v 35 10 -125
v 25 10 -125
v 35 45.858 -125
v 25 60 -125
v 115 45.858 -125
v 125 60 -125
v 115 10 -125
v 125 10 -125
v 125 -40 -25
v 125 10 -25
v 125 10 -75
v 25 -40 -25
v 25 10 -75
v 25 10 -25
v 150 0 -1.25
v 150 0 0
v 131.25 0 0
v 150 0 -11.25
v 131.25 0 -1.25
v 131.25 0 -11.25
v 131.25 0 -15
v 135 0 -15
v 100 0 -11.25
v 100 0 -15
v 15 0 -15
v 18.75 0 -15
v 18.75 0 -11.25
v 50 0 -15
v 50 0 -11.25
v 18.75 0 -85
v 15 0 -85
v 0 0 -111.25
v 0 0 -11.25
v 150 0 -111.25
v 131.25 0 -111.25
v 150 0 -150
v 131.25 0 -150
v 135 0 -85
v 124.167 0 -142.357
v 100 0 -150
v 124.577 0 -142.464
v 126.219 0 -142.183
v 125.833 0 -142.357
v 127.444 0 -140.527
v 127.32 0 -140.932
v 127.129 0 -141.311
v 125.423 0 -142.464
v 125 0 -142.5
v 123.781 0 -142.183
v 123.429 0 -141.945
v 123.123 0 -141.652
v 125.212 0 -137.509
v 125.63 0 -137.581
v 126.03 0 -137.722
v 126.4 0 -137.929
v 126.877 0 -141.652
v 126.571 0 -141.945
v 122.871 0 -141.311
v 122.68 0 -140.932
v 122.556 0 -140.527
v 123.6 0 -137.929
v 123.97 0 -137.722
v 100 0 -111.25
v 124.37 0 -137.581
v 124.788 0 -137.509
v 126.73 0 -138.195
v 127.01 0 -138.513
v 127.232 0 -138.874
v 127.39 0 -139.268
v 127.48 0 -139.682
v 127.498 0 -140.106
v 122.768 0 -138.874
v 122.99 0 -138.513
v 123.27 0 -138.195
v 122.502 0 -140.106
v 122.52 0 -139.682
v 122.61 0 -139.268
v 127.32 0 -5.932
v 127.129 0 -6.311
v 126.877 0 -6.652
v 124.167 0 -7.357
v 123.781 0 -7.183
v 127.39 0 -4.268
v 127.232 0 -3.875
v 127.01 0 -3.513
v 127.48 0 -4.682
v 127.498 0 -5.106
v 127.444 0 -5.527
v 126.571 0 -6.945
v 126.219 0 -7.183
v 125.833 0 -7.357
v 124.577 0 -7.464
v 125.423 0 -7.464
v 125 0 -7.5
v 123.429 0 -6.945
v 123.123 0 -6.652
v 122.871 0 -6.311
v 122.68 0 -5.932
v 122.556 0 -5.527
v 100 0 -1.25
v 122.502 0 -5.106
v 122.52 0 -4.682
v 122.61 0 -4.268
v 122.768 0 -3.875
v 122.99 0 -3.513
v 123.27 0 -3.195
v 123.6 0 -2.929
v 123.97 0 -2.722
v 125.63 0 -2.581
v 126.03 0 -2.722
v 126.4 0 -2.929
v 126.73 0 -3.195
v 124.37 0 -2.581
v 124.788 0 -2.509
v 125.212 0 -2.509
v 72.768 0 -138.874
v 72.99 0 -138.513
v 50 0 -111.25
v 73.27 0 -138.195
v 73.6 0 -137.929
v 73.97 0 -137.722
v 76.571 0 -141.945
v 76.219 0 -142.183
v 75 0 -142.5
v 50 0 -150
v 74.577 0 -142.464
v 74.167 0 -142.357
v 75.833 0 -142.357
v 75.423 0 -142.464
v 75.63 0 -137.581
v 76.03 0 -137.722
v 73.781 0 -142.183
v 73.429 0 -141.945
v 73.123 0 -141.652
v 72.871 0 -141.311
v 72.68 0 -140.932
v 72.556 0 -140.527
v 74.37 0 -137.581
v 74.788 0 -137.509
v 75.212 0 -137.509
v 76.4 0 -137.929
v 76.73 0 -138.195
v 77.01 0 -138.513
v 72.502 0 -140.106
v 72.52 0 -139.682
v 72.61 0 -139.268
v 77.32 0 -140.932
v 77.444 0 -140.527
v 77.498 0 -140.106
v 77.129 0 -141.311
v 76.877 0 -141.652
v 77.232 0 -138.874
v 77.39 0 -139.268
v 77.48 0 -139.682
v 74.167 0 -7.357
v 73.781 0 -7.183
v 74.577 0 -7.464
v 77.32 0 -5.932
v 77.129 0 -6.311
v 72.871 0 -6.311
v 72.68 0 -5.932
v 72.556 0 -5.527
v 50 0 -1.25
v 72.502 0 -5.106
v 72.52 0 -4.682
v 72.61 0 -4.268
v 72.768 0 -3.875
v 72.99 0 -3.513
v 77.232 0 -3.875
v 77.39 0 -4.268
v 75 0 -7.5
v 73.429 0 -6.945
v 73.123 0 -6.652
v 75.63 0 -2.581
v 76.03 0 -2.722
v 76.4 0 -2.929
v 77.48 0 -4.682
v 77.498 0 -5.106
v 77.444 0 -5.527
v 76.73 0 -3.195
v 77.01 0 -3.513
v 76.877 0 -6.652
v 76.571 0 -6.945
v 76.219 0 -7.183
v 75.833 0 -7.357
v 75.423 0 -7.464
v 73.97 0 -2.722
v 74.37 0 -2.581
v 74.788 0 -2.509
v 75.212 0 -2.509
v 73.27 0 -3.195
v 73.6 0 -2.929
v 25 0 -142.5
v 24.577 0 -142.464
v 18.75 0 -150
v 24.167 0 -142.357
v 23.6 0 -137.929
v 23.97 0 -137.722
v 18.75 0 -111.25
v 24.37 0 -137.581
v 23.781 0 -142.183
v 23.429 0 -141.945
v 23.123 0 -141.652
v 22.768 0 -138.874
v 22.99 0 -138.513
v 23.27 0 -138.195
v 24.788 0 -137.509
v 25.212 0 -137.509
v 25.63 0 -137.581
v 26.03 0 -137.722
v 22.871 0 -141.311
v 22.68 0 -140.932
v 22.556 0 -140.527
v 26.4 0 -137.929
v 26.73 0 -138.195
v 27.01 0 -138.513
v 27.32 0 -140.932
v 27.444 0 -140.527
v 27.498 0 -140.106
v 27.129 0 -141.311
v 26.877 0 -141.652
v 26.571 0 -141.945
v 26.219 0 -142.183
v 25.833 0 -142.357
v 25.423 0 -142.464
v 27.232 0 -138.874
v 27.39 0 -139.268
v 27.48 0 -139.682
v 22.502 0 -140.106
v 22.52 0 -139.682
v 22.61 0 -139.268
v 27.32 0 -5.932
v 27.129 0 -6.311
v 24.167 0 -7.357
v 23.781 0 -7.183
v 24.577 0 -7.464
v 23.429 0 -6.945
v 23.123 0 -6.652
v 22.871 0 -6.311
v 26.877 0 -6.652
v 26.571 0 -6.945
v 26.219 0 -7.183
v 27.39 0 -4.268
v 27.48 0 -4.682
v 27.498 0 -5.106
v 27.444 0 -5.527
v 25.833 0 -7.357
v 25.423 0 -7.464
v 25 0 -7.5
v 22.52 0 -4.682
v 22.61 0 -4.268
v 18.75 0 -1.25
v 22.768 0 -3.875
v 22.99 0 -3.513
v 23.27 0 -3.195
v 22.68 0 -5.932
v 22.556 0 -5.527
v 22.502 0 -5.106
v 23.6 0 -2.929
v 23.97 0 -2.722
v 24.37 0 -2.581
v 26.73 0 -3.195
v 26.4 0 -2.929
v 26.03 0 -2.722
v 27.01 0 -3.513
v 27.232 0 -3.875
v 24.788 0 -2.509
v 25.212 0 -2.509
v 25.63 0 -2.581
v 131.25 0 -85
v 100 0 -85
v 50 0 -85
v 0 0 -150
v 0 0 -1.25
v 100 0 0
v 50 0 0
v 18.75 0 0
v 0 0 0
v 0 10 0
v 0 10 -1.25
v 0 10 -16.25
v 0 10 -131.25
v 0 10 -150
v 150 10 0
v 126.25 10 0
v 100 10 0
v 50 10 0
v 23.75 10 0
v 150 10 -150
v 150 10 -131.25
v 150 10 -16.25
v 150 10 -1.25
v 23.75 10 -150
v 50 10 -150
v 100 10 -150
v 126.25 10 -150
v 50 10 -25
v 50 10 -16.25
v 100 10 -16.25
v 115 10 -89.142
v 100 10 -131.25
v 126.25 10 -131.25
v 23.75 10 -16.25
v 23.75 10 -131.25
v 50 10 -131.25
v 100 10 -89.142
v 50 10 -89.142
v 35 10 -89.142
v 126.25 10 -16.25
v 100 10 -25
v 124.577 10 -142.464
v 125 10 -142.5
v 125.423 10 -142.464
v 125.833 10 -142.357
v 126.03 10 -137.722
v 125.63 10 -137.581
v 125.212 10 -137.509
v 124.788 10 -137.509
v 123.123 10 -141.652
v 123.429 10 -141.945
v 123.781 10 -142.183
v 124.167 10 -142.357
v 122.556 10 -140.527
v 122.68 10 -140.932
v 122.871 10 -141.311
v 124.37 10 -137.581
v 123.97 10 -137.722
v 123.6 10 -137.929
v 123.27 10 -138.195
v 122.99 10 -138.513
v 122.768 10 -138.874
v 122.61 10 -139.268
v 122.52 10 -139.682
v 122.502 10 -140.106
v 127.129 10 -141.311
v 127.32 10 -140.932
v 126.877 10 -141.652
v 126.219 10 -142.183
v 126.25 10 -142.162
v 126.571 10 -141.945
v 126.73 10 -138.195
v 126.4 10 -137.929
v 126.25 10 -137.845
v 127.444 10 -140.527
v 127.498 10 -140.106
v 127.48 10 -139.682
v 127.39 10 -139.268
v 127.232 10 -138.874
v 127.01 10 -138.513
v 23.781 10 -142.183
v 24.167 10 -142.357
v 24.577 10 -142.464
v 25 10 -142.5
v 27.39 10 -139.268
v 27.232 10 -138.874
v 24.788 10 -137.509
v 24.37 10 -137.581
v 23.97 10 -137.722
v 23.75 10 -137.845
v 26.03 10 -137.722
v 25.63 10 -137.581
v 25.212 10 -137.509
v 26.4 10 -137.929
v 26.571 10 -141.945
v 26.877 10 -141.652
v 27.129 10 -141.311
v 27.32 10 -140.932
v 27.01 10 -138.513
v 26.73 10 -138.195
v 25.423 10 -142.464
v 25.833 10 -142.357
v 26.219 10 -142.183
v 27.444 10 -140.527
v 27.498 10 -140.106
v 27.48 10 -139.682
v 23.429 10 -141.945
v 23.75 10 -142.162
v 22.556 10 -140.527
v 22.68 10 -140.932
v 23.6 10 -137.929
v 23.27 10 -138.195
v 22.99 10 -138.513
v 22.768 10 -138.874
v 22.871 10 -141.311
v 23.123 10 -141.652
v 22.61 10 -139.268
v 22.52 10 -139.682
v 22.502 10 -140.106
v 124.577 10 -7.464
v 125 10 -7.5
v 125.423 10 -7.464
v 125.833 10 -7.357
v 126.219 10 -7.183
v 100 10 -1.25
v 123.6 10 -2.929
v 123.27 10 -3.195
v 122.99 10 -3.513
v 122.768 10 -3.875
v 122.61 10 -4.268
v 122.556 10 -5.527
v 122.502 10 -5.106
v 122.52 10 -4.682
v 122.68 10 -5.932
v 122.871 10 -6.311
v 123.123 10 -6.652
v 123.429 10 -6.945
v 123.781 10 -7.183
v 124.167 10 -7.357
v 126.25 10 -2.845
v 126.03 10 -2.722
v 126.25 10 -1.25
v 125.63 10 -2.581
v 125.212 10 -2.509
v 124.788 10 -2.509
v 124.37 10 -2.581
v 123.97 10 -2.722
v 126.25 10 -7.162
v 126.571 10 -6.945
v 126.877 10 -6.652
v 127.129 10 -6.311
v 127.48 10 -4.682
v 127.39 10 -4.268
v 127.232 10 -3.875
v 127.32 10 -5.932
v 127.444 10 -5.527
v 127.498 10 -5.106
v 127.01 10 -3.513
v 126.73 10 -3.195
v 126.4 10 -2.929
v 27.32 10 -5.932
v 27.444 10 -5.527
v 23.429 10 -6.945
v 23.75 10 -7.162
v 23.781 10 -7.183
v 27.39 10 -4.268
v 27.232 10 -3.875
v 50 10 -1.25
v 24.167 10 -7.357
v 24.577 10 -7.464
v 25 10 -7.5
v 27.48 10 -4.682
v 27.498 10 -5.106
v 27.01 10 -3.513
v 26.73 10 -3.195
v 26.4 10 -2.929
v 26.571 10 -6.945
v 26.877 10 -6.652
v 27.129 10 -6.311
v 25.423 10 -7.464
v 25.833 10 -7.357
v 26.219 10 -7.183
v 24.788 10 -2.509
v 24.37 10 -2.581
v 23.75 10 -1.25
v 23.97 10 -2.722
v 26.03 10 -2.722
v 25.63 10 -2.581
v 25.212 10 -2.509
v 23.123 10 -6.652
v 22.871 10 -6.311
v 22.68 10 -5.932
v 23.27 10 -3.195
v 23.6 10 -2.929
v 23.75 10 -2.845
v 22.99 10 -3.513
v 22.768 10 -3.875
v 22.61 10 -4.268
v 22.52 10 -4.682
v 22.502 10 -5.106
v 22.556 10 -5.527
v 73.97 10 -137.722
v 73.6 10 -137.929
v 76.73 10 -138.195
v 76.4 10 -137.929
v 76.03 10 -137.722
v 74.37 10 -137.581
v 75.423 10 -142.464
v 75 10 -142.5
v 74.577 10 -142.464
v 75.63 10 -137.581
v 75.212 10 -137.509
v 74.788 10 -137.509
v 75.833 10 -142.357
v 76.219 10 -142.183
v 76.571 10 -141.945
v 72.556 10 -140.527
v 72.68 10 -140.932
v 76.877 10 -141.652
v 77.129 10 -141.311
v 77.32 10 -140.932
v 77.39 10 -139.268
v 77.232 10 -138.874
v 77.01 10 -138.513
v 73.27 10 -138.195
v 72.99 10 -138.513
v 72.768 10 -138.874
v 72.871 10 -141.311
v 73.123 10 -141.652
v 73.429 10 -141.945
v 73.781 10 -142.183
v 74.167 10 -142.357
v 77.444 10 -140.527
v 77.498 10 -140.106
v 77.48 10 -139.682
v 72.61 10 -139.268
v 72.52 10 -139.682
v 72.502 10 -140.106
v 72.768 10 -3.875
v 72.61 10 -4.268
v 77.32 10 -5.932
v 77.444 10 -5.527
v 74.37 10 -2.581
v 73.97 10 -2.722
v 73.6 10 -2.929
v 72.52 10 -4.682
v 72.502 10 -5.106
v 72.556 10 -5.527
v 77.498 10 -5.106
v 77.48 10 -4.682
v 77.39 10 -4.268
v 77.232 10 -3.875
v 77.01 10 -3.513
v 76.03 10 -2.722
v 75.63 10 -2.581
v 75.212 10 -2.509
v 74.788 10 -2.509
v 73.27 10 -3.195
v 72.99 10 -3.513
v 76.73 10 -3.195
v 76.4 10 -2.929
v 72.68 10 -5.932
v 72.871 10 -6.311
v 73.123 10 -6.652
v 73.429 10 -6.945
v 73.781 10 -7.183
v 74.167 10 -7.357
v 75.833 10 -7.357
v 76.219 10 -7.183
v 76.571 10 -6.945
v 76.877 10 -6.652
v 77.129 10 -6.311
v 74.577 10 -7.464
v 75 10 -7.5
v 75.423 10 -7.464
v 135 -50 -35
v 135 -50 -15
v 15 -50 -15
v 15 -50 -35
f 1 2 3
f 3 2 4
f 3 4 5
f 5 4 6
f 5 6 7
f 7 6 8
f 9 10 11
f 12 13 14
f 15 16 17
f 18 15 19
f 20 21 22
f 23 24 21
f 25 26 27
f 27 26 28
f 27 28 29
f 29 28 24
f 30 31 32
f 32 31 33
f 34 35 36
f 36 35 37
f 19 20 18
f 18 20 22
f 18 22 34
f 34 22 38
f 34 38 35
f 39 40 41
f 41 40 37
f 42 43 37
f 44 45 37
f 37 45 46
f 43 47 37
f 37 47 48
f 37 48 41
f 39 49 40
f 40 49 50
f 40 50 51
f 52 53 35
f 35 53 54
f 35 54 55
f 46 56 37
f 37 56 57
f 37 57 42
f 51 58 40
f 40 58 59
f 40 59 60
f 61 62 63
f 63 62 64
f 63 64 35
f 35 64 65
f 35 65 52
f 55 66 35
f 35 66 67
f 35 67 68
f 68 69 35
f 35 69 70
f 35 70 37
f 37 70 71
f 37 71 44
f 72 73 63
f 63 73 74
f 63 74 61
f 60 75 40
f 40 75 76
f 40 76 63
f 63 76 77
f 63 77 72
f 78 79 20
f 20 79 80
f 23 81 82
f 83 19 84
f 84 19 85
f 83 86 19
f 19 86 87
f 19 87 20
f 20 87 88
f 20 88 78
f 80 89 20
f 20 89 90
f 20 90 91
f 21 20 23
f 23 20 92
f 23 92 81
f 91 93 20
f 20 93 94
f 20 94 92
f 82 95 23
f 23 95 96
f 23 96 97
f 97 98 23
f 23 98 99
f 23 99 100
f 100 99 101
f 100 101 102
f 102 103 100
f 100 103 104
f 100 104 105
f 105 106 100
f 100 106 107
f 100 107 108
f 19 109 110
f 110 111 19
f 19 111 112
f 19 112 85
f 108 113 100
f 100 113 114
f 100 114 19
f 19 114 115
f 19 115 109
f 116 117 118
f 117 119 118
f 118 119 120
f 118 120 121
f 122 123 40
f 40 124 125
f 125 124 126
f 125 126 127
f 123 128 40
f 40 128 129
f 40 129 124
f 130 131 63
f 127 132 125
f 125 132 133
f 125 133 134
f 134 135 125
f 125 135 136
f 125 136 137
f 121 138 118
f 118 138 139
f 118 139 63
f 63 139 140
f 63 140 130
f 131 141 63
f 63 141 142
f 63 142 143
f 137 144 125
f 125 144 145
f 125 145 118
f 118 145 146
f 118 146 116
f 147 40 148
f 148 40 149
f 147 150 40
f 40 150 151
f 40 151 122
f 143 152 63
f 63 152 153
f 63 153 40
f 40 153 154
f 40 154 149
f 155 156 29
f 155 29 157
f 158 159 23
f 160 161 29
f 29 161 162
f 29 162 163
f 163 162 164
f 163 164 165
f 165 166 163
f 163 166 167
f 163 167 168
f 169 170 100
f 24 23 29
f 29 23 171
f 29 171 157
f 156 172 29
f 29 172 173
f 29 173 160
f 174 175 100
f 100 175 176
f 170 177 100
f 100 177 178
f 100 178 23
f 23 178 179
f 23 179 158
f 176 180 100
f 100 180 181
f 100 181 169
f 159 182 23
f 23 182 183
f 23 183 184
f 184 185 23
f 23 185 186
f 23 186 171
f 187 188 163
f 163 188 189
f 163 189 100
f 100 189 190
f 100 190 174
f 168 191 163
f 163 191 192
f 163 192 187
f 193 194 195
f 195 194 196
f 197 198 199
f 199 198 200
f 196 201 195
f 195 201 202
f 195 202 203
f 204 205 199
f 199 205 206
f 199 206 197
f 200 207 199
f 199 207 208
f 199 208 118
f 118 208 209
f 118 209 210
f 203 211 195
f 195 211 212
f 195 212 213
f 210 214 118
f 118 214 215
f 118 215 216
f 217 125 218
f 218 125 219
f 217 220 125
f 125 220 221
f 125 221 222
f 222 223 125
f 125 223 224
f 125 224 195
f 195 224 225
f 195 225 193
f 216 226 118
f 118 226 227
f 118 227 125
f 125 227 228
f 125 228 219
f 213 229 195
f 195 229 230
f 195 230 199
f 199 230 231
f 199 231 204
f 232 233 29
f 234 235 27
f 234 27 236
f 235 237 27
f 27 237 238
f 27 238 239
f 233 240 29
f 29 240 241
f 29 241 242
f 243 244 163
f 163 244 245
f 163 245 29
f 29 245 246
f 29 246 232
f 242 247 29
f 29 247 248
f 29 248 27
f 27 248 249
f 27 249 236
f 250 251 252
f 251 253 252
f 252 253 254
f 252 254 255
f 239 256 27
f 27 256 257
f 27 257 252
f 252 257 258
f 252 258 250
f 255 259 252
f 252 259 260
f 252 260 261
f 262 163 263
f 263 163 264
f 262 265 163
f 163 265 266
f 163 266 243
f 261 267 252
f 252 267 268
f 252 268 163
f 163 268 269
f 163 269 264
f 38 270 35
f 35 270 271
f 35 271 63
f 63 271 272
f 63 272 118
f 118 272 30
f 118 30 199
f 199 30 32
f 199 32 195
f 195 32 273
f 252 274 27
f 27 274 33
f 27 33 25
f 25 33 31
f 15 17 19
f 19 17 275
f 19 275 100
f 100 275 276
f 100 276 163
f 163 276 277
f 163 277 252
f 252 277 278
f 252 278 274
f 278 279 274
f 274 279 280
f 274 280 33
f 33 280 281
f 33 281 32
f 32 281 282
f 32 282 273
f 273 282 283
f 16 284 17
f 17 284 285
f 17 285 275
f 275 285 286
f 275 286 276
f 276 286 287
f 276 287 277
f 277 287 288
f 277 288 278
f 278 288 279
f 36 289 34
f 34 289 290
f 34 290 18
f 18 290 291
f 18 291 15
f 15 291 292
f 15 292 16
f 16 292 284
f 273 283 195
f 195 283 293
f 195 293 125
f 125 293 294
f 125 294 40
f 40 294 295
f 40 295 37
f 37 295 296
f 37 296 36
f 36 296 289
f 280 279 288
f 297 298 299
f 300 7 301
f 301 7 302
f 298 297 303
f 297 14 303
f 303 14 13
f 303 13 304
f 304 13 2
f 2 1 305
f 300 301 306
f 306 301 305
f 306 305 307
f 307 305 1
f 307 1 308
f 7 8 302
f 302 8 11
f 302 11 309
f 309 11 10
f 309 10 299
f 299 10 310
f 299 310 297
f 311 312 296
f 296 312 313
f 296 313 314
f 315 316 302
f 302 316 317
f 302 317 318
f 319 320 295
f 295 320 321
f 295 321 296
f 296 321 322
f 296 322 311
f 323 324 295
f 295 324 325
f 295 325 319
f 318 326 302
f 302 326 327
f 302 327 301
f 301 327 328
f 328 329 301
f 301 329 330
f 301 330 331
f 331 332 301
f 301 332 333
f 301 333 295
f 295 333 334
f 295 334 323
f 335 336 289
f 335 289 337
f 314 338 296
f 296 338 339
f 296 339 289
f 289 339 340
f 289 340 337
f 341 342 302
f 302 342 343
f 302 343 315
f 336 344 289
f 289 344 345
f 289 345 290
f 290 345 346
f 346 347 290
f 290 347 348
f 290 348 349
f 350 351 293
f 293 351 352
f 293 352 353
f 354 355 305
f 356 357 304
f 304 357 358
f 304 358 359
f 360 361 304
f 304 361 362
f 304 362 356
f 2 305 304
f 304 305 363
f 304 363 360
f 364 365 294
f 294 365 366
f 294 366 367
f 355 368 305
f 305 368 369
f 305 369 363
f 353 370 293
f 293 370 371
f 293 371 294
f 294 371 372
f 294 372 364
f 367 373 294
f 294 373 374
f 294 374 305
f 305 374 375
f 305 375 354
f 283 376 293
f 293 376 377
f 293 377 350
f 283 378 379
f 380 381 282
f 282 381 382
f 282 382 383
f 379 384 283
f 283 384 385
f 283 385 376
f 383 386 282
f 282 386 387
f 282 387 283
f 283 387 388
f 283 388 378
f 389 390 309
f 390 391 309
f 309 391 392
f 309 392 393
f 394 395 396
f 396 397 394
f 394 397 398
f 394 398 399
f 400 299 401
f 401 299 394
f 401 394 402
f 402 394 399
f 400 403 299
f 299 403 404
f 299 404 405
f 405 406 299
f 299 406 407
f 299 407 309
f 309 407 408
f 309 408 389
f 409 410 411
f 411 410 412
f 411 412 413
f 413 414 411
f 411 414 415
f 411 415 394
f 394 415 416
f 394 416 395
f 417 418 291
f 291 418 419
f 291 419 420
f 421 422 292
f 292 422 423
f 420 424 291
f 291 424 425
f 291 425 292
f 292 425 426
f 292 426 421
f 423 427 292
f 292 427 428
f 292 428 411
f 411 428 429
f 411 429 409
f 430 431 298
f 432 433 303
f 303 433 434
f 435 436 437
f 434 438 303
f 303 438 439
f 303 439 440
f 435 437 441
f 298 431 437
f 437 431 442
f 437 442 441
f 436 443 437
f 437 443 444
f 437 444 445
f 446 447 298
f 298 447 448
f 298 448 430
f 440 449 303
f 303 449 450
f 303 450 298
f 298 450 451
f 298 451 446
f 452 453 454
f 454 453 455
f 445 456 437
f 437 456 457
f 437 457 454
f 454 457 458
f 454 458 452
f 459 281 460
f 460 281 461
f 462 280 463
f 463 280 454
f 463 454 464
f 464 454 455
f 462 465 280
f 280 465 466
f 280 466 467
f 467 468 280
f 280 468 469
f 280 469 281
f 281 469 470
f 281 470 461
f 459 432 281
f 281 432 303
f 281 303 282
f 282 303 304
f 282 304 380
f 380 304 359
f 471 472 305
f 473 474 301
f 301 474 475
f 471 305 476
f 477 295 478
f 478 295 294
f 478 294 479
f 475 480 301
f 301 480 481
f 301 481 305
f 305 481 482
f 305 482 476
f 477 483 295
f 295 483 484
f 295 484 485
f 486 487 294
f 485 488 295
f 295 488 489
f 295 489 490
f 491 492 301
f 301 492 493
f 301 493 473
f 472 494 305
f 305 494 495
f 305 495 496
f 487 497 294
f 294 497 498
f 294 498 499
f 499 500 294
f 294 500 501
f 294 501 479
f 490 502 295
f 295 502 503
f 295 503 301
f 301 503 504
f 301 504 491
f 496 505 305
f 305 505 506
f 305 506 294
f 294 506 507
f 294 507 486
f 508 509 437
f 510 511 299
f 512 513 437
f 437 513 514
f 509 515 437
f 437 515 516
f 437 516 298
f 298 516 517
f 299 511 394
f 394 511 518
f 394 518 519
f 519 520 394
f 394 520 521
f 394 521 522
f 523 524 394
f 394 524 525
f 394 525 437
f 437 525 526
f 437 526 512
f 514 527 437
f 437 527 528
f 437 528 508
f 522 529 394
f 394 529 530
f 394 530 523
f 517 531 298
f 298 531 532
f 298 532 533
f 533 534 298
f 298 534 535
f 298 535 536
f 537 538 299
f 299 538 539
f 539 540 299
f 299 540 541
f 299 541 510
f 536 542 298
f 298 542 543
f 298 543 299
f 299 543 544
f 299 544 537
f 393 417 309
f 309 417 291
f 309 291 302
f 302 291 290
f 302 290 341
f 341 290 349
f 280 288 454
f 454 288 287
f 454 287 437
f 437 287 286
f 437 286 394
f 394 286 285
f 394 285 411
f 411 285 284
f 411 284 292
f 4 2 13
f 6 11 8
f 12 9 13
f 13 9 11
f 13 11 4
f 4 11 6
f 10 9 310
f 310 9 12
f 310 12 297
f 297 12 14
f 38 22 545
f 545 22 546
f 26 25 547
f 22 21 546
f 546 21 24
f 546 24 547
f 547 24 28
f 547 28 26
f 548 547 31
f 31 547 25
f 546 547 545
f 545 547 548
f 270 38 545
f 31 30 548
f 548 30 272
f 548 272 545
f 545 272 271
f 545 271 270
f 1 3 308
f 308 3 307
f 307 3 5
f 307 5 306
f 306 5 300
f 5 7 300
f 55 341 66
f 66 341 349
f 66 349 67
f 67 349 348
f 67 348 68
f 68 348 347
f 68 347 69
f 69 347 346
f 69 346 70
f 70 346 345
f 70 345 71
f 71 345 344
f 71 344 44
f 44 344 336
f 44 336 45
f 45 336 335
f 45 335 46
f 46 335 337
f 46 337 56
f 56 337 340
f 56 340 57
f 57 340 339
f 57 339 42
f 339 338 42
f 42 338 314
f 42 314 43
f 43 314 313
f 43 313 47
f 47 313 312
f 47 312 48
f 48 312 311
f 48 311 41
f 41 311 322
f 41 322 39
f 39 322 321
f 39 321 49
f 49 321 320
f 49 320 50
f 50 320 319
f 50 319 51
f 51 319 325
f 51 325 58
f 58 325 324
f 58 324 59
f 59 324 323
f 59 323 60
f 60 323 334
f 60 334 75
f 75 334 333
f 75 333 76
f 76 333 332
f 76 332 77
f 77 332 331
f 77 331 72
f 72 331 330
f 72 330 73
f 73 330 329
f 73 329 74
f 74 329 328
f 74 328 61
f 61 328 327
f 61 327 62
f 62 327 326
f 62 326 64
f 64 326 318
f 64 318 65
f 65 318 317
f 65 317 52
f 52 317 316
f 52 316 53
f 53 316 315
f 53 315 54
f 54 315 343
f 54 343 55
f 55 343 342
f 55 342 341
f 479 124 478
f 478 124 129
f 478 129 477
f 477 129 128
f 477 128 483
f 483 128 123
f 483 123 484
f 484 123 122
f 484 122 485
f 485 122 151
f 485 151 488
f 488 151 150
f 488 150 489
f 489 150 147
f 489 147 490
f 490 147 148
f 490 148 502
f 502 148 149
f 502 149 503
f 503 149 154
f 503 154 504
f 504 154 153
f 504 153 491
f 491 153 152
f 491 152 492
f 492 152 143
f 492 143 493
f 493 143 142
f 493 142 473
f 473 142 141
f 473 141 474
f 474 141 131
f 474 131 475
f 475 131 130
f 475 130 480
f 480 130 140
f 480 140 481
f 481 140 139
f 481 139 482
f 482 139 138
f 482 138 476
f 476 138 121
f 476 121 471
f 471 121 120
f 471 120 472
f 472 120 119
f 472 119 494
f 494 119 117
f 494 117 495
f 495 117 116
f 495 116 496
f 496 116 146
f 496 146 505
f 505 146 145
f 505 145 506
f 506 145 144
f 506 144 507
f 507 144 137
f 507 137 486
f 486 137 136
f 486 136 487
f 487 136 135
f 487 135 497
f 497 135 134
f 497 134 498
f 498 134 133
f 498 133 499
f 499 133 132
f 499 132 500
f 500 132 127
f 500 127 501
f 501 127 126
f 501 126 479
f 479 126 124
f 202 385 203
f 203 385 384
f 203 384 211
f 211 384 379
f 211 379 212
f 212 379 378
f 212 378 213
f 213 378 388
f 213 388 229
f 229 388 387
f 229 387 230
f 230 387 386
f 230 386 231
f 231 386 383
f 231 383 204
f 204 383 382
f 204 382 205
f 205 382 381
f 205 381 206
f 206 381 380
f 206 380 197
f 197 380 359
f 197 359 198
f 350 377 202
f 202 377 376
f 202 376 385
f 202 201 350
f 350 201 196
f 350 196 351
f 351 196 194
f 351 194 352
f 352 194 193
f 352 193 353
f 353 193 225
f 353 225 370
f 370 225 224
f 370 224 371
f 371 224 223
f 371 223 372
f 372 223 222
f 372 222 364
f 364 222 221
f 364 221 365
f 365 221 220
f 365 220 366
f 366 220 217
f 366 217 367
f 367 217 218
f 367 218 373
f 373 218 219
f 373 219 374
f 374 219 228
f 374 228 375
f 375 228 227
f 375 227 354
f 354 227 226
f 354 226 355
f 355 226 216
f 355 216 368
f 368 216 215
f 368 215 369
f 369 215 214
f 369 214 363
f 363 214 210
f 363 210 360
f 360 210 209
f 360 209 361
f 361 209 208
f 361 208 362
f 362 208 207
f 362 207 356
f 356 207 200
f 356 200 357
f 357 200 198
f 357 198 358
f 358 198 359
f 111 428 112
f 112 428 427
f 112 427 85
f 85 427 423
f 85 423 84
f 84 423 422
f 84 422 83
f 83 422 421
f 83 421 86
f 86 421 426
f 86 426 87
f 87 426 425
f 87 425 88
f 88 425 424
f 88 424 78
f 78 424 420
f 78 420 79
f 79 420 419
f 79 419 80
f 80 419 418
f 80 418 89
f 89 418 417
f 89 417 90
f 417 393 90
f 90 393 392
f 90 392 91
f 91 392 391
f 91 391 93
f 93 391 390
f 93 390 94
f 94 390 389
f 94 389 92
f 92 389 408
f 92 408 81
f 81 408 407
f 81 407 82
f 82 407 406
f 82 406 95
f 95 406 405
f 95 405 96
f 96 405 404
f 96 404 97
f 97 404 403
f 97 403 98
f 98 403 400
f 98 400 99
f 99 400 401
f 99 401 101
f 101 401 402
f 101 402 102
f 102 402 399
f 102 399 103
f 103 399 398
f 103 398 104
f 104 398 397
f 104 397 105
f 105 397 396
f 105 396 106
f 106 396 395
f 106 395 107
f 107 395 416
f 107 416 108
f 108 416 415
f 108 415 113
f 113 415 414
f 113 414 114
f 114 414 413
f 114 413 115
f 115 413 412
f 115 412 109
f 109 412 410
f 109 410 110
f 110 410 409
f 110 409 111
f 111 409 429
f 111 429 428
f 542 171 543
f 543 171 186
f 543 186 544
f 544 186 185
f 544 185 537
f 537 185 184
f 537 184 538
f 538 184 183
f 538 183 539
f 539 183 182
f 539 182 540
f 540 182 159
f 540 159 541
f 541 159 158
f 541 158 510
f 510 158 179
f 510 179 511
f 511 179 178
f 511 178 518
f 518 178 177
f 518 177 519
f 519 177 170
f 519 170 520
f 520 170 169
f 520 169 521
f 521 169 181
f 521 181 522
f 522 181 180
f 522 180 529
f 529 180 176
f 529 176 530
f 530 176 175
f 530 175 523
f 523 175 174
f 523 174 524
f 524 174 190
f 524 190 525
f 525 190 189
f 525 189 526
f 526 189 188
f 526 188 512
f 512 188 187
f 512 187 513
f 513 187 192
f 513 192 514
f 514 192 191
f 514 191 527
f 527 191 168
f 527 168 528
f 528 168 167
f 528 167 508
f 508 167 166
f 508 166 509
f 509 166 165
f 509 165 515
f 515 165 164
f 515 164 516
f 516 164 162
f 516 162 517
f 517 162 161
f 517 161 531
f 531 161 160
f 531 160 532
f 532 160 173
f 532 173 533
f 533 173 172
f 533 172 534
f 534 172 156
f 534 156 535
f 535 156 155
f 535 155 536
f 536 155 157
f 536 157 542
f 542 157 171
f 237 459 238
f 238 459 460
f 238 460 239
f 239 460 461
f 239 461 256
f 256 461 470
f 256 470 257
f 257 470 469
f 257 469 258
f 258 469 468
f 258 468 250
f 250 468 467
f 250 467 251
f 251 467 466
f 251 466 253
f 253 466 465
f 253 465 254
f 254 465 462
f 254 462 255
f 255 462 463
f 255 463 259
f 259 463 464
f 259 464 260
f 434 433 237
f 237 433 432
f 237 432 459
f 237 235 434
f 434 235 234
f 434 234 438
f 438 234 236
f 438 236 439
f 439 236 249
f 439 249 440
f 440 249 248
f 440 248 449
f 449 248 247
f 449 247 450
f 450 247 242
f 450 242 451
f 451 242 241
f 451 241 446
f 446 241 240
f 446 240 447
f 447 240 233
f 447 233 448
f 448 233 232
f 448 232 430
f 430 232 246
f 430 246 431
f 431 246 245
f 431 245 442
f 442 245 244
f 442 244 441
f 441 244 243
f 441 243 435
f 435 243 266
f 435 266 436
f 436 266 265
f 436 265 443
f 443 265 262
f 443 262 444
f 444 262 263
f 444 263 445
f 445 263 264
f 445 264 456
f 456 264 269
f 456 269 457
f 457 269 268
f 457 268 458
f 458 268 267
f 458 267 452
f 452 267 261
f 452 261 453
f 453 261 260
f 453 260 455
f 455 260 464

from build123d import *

# Parameters (mm, degrees)
SKETCH1_W           = 150
SKETCH1_H           = 150
BOSS_EXTRUDE1_DEPTH = 10
SKETCH3_W           = 100
SKETCH3_H           = 50
BOSS_EXTRUDE2_DEPTH = 50
CUT_EXTRUDE1_DEPTH  = 205.266982158
SKETCH5_W           = 100
SKETCH5_H           = 50
CUT_EXTRUDE2_DEPTH  = 218.944947177
SKETCH7_W           = 120
SKETCH7_H           = 70
BOSS_EXTRUDE6_DEPTH = 50
BOSS_EXTRUDE7_DEPTH = 100
SKETCH9_W           = 100
SKETCH9_H           = 40
CUT_EXTRUDE4_DEPTH  = 40
BOSS_EXTRUDE8_DEPTH = 100
CUT_EXTRUDE5_DEPTH  = 211.535032714
SHELL1_START        = 35
SHELL1_DEPTH        = 80
SKETCH12_R          = 2.5
CUT_EXTRUDE6_DEPTH  = 221.45407685


# Read off the part's stored shape, not the designer's step: Shell1
with BuildPart() as part:
    # Sketch1 → Boss-Extrude1 (new body)
    with BuildSketch(Plane(origin=(0, 0, 0), x_dir=(1, 0, 0), z_dir=(0, 1, 0))):
        with Locations((75, 75)):
            Rectangle(SKETCH1_W, SKETCH1_H)
    extrude(amount=BOSS_EXTRUDE1_DEPTH)

    # Sketch3 → Boss-Extrude2 (add)
    with BuildSketch(Plane(origin=(0, 10, 0), x_dir=(1, 0, 0), z_dir=(0, 1, 0))):
        with Locations((75, 100)):
            Rectangle(SKETCH3_W, SKETCH3_H)
    extrude(amount=BOSS_EXTRUDE2_DEPTH)

    # Sketch4 → Cut-Extrude1 (cut, through all)
    with BuildSketch(Plane.ZY.offset(-25)):
        Polygon((-125, 60), (-75, 10), (-75, 60), align=None)
    extrude(amount=-CUT_EXTRUDE1_DEPTH, mode=Mode.SUBTRACT)

    # Sketch5 → Cut-Extrude2 (cut, through all)
    with BuildSketch(Plane(origin=(0, 10, 0), x_dir=(1, 0, 0), z_dir=(0, 1, 0))):
        with Locations((75, 50)):
            Rectangle(SKETCH5_W, SKETCH5_H)
    extrude(amount=-CUT_EXTRUDE2_DEPTH, mode=Mode.SUBTRACT)

    # Sketch7 → Boss-Extrude6 (add)
    with BuildSketch(Plane.XZ):
        with Locations((75, -50)):
            Rectangle(SKETCH7_W, SKETCH7_H)
    extrude(amount=BOSS_EXTRUDE6_DEPTH)

    # Sketch6 → Boss-Extrude7 (add)
    with BuildSketch(Plane(origin=(25, 0, 0), x_dir=(0, 0, -1), z_dir=(1, 0, 0))):
        Polygon((75, 0), (75, 10), (65, 0), align=None)
    extrude(amount=BOSS_EXTRUDE7_DEPTH)

    # Sketch9 → Cut-Extrude4 (cut)
    with BuildSketch(Plane(origin=(0, 0, 0), x_dir=(1, 0, 0), z_dir=(0, 1, 0))):
        with Locations((75, 45)):
            Rectangle(SKETCH9_W, SKETCH9_H)
    extrude(amount=-CUT_EXTRUDE4_DEPTH, mode=Mode.SUBTRACT)

    # Sketch10 → Boss-Extrude8 (add)
    with BuildSketch(Plane(origin=(25, 0, 0), x_dir=(0, 0, -1), z_dir=(1, 0, 0))):
        Polygon((65, 0), (25, -40), (65, -40), align=None)
    extrude(amount=BOSS_EXTRUDE8_DEPTH)

    # Sketch11 → Cut-Extrude5 (cut, through all)
    with BuildSketch(Plane(origin=(135, 0, 0), x_dir=(0, 0, -1), z_dir=(1, 0, 0))):
        Polygon((85, 0), (85, -50), (35, -50), align=None)
    extrude(amount=-CUT_EXTRUDE5_DEPTH, mode=Mode.SUBTRACT)

    # Shell1 outline → Shell1 (cut)
    with BuildSketch(Plane.YZ.offset(SHELL1_START)):
        Polygon((45.857864376, -125), (10, -89.142135624), (10, -125), align=None)
    extrude(amount=SHELL1_DEPTH, mode=Mode.SUBTRACT)

    # Sketch12 → Cut-Extrude6 (cut, through all)
    with BuildSketch(Plane.XZ):
        with Locations(Location((125, -140, 0), (0, 0, 270))):
            Circle(SKETCH12_R)
        with Locations(Location((75, -140, 0), (0, 0, 270))):
            Circle(SKETCH12_R)
        with Locations(Location((25, -140, 0), (0, 0, 270))):
            Circle(SKETCH12_R)
        with Locations(Location((125, -5, 0), (0, 0, 270))):
            Circle(SKETCH12_R)
        with Locations(Location((75, -5, 0), (0, 0, 270))):
            Circle(SKETCH12_R)
        with Locations(Location((25, -5, 0), (0, 0, 270))):
            Circle(SKETCH12_R)
    extrude(amount=-CUT_EXTRUDE6_DEPTH, mode=Mode.SUBTRACT)


solid = part.part
